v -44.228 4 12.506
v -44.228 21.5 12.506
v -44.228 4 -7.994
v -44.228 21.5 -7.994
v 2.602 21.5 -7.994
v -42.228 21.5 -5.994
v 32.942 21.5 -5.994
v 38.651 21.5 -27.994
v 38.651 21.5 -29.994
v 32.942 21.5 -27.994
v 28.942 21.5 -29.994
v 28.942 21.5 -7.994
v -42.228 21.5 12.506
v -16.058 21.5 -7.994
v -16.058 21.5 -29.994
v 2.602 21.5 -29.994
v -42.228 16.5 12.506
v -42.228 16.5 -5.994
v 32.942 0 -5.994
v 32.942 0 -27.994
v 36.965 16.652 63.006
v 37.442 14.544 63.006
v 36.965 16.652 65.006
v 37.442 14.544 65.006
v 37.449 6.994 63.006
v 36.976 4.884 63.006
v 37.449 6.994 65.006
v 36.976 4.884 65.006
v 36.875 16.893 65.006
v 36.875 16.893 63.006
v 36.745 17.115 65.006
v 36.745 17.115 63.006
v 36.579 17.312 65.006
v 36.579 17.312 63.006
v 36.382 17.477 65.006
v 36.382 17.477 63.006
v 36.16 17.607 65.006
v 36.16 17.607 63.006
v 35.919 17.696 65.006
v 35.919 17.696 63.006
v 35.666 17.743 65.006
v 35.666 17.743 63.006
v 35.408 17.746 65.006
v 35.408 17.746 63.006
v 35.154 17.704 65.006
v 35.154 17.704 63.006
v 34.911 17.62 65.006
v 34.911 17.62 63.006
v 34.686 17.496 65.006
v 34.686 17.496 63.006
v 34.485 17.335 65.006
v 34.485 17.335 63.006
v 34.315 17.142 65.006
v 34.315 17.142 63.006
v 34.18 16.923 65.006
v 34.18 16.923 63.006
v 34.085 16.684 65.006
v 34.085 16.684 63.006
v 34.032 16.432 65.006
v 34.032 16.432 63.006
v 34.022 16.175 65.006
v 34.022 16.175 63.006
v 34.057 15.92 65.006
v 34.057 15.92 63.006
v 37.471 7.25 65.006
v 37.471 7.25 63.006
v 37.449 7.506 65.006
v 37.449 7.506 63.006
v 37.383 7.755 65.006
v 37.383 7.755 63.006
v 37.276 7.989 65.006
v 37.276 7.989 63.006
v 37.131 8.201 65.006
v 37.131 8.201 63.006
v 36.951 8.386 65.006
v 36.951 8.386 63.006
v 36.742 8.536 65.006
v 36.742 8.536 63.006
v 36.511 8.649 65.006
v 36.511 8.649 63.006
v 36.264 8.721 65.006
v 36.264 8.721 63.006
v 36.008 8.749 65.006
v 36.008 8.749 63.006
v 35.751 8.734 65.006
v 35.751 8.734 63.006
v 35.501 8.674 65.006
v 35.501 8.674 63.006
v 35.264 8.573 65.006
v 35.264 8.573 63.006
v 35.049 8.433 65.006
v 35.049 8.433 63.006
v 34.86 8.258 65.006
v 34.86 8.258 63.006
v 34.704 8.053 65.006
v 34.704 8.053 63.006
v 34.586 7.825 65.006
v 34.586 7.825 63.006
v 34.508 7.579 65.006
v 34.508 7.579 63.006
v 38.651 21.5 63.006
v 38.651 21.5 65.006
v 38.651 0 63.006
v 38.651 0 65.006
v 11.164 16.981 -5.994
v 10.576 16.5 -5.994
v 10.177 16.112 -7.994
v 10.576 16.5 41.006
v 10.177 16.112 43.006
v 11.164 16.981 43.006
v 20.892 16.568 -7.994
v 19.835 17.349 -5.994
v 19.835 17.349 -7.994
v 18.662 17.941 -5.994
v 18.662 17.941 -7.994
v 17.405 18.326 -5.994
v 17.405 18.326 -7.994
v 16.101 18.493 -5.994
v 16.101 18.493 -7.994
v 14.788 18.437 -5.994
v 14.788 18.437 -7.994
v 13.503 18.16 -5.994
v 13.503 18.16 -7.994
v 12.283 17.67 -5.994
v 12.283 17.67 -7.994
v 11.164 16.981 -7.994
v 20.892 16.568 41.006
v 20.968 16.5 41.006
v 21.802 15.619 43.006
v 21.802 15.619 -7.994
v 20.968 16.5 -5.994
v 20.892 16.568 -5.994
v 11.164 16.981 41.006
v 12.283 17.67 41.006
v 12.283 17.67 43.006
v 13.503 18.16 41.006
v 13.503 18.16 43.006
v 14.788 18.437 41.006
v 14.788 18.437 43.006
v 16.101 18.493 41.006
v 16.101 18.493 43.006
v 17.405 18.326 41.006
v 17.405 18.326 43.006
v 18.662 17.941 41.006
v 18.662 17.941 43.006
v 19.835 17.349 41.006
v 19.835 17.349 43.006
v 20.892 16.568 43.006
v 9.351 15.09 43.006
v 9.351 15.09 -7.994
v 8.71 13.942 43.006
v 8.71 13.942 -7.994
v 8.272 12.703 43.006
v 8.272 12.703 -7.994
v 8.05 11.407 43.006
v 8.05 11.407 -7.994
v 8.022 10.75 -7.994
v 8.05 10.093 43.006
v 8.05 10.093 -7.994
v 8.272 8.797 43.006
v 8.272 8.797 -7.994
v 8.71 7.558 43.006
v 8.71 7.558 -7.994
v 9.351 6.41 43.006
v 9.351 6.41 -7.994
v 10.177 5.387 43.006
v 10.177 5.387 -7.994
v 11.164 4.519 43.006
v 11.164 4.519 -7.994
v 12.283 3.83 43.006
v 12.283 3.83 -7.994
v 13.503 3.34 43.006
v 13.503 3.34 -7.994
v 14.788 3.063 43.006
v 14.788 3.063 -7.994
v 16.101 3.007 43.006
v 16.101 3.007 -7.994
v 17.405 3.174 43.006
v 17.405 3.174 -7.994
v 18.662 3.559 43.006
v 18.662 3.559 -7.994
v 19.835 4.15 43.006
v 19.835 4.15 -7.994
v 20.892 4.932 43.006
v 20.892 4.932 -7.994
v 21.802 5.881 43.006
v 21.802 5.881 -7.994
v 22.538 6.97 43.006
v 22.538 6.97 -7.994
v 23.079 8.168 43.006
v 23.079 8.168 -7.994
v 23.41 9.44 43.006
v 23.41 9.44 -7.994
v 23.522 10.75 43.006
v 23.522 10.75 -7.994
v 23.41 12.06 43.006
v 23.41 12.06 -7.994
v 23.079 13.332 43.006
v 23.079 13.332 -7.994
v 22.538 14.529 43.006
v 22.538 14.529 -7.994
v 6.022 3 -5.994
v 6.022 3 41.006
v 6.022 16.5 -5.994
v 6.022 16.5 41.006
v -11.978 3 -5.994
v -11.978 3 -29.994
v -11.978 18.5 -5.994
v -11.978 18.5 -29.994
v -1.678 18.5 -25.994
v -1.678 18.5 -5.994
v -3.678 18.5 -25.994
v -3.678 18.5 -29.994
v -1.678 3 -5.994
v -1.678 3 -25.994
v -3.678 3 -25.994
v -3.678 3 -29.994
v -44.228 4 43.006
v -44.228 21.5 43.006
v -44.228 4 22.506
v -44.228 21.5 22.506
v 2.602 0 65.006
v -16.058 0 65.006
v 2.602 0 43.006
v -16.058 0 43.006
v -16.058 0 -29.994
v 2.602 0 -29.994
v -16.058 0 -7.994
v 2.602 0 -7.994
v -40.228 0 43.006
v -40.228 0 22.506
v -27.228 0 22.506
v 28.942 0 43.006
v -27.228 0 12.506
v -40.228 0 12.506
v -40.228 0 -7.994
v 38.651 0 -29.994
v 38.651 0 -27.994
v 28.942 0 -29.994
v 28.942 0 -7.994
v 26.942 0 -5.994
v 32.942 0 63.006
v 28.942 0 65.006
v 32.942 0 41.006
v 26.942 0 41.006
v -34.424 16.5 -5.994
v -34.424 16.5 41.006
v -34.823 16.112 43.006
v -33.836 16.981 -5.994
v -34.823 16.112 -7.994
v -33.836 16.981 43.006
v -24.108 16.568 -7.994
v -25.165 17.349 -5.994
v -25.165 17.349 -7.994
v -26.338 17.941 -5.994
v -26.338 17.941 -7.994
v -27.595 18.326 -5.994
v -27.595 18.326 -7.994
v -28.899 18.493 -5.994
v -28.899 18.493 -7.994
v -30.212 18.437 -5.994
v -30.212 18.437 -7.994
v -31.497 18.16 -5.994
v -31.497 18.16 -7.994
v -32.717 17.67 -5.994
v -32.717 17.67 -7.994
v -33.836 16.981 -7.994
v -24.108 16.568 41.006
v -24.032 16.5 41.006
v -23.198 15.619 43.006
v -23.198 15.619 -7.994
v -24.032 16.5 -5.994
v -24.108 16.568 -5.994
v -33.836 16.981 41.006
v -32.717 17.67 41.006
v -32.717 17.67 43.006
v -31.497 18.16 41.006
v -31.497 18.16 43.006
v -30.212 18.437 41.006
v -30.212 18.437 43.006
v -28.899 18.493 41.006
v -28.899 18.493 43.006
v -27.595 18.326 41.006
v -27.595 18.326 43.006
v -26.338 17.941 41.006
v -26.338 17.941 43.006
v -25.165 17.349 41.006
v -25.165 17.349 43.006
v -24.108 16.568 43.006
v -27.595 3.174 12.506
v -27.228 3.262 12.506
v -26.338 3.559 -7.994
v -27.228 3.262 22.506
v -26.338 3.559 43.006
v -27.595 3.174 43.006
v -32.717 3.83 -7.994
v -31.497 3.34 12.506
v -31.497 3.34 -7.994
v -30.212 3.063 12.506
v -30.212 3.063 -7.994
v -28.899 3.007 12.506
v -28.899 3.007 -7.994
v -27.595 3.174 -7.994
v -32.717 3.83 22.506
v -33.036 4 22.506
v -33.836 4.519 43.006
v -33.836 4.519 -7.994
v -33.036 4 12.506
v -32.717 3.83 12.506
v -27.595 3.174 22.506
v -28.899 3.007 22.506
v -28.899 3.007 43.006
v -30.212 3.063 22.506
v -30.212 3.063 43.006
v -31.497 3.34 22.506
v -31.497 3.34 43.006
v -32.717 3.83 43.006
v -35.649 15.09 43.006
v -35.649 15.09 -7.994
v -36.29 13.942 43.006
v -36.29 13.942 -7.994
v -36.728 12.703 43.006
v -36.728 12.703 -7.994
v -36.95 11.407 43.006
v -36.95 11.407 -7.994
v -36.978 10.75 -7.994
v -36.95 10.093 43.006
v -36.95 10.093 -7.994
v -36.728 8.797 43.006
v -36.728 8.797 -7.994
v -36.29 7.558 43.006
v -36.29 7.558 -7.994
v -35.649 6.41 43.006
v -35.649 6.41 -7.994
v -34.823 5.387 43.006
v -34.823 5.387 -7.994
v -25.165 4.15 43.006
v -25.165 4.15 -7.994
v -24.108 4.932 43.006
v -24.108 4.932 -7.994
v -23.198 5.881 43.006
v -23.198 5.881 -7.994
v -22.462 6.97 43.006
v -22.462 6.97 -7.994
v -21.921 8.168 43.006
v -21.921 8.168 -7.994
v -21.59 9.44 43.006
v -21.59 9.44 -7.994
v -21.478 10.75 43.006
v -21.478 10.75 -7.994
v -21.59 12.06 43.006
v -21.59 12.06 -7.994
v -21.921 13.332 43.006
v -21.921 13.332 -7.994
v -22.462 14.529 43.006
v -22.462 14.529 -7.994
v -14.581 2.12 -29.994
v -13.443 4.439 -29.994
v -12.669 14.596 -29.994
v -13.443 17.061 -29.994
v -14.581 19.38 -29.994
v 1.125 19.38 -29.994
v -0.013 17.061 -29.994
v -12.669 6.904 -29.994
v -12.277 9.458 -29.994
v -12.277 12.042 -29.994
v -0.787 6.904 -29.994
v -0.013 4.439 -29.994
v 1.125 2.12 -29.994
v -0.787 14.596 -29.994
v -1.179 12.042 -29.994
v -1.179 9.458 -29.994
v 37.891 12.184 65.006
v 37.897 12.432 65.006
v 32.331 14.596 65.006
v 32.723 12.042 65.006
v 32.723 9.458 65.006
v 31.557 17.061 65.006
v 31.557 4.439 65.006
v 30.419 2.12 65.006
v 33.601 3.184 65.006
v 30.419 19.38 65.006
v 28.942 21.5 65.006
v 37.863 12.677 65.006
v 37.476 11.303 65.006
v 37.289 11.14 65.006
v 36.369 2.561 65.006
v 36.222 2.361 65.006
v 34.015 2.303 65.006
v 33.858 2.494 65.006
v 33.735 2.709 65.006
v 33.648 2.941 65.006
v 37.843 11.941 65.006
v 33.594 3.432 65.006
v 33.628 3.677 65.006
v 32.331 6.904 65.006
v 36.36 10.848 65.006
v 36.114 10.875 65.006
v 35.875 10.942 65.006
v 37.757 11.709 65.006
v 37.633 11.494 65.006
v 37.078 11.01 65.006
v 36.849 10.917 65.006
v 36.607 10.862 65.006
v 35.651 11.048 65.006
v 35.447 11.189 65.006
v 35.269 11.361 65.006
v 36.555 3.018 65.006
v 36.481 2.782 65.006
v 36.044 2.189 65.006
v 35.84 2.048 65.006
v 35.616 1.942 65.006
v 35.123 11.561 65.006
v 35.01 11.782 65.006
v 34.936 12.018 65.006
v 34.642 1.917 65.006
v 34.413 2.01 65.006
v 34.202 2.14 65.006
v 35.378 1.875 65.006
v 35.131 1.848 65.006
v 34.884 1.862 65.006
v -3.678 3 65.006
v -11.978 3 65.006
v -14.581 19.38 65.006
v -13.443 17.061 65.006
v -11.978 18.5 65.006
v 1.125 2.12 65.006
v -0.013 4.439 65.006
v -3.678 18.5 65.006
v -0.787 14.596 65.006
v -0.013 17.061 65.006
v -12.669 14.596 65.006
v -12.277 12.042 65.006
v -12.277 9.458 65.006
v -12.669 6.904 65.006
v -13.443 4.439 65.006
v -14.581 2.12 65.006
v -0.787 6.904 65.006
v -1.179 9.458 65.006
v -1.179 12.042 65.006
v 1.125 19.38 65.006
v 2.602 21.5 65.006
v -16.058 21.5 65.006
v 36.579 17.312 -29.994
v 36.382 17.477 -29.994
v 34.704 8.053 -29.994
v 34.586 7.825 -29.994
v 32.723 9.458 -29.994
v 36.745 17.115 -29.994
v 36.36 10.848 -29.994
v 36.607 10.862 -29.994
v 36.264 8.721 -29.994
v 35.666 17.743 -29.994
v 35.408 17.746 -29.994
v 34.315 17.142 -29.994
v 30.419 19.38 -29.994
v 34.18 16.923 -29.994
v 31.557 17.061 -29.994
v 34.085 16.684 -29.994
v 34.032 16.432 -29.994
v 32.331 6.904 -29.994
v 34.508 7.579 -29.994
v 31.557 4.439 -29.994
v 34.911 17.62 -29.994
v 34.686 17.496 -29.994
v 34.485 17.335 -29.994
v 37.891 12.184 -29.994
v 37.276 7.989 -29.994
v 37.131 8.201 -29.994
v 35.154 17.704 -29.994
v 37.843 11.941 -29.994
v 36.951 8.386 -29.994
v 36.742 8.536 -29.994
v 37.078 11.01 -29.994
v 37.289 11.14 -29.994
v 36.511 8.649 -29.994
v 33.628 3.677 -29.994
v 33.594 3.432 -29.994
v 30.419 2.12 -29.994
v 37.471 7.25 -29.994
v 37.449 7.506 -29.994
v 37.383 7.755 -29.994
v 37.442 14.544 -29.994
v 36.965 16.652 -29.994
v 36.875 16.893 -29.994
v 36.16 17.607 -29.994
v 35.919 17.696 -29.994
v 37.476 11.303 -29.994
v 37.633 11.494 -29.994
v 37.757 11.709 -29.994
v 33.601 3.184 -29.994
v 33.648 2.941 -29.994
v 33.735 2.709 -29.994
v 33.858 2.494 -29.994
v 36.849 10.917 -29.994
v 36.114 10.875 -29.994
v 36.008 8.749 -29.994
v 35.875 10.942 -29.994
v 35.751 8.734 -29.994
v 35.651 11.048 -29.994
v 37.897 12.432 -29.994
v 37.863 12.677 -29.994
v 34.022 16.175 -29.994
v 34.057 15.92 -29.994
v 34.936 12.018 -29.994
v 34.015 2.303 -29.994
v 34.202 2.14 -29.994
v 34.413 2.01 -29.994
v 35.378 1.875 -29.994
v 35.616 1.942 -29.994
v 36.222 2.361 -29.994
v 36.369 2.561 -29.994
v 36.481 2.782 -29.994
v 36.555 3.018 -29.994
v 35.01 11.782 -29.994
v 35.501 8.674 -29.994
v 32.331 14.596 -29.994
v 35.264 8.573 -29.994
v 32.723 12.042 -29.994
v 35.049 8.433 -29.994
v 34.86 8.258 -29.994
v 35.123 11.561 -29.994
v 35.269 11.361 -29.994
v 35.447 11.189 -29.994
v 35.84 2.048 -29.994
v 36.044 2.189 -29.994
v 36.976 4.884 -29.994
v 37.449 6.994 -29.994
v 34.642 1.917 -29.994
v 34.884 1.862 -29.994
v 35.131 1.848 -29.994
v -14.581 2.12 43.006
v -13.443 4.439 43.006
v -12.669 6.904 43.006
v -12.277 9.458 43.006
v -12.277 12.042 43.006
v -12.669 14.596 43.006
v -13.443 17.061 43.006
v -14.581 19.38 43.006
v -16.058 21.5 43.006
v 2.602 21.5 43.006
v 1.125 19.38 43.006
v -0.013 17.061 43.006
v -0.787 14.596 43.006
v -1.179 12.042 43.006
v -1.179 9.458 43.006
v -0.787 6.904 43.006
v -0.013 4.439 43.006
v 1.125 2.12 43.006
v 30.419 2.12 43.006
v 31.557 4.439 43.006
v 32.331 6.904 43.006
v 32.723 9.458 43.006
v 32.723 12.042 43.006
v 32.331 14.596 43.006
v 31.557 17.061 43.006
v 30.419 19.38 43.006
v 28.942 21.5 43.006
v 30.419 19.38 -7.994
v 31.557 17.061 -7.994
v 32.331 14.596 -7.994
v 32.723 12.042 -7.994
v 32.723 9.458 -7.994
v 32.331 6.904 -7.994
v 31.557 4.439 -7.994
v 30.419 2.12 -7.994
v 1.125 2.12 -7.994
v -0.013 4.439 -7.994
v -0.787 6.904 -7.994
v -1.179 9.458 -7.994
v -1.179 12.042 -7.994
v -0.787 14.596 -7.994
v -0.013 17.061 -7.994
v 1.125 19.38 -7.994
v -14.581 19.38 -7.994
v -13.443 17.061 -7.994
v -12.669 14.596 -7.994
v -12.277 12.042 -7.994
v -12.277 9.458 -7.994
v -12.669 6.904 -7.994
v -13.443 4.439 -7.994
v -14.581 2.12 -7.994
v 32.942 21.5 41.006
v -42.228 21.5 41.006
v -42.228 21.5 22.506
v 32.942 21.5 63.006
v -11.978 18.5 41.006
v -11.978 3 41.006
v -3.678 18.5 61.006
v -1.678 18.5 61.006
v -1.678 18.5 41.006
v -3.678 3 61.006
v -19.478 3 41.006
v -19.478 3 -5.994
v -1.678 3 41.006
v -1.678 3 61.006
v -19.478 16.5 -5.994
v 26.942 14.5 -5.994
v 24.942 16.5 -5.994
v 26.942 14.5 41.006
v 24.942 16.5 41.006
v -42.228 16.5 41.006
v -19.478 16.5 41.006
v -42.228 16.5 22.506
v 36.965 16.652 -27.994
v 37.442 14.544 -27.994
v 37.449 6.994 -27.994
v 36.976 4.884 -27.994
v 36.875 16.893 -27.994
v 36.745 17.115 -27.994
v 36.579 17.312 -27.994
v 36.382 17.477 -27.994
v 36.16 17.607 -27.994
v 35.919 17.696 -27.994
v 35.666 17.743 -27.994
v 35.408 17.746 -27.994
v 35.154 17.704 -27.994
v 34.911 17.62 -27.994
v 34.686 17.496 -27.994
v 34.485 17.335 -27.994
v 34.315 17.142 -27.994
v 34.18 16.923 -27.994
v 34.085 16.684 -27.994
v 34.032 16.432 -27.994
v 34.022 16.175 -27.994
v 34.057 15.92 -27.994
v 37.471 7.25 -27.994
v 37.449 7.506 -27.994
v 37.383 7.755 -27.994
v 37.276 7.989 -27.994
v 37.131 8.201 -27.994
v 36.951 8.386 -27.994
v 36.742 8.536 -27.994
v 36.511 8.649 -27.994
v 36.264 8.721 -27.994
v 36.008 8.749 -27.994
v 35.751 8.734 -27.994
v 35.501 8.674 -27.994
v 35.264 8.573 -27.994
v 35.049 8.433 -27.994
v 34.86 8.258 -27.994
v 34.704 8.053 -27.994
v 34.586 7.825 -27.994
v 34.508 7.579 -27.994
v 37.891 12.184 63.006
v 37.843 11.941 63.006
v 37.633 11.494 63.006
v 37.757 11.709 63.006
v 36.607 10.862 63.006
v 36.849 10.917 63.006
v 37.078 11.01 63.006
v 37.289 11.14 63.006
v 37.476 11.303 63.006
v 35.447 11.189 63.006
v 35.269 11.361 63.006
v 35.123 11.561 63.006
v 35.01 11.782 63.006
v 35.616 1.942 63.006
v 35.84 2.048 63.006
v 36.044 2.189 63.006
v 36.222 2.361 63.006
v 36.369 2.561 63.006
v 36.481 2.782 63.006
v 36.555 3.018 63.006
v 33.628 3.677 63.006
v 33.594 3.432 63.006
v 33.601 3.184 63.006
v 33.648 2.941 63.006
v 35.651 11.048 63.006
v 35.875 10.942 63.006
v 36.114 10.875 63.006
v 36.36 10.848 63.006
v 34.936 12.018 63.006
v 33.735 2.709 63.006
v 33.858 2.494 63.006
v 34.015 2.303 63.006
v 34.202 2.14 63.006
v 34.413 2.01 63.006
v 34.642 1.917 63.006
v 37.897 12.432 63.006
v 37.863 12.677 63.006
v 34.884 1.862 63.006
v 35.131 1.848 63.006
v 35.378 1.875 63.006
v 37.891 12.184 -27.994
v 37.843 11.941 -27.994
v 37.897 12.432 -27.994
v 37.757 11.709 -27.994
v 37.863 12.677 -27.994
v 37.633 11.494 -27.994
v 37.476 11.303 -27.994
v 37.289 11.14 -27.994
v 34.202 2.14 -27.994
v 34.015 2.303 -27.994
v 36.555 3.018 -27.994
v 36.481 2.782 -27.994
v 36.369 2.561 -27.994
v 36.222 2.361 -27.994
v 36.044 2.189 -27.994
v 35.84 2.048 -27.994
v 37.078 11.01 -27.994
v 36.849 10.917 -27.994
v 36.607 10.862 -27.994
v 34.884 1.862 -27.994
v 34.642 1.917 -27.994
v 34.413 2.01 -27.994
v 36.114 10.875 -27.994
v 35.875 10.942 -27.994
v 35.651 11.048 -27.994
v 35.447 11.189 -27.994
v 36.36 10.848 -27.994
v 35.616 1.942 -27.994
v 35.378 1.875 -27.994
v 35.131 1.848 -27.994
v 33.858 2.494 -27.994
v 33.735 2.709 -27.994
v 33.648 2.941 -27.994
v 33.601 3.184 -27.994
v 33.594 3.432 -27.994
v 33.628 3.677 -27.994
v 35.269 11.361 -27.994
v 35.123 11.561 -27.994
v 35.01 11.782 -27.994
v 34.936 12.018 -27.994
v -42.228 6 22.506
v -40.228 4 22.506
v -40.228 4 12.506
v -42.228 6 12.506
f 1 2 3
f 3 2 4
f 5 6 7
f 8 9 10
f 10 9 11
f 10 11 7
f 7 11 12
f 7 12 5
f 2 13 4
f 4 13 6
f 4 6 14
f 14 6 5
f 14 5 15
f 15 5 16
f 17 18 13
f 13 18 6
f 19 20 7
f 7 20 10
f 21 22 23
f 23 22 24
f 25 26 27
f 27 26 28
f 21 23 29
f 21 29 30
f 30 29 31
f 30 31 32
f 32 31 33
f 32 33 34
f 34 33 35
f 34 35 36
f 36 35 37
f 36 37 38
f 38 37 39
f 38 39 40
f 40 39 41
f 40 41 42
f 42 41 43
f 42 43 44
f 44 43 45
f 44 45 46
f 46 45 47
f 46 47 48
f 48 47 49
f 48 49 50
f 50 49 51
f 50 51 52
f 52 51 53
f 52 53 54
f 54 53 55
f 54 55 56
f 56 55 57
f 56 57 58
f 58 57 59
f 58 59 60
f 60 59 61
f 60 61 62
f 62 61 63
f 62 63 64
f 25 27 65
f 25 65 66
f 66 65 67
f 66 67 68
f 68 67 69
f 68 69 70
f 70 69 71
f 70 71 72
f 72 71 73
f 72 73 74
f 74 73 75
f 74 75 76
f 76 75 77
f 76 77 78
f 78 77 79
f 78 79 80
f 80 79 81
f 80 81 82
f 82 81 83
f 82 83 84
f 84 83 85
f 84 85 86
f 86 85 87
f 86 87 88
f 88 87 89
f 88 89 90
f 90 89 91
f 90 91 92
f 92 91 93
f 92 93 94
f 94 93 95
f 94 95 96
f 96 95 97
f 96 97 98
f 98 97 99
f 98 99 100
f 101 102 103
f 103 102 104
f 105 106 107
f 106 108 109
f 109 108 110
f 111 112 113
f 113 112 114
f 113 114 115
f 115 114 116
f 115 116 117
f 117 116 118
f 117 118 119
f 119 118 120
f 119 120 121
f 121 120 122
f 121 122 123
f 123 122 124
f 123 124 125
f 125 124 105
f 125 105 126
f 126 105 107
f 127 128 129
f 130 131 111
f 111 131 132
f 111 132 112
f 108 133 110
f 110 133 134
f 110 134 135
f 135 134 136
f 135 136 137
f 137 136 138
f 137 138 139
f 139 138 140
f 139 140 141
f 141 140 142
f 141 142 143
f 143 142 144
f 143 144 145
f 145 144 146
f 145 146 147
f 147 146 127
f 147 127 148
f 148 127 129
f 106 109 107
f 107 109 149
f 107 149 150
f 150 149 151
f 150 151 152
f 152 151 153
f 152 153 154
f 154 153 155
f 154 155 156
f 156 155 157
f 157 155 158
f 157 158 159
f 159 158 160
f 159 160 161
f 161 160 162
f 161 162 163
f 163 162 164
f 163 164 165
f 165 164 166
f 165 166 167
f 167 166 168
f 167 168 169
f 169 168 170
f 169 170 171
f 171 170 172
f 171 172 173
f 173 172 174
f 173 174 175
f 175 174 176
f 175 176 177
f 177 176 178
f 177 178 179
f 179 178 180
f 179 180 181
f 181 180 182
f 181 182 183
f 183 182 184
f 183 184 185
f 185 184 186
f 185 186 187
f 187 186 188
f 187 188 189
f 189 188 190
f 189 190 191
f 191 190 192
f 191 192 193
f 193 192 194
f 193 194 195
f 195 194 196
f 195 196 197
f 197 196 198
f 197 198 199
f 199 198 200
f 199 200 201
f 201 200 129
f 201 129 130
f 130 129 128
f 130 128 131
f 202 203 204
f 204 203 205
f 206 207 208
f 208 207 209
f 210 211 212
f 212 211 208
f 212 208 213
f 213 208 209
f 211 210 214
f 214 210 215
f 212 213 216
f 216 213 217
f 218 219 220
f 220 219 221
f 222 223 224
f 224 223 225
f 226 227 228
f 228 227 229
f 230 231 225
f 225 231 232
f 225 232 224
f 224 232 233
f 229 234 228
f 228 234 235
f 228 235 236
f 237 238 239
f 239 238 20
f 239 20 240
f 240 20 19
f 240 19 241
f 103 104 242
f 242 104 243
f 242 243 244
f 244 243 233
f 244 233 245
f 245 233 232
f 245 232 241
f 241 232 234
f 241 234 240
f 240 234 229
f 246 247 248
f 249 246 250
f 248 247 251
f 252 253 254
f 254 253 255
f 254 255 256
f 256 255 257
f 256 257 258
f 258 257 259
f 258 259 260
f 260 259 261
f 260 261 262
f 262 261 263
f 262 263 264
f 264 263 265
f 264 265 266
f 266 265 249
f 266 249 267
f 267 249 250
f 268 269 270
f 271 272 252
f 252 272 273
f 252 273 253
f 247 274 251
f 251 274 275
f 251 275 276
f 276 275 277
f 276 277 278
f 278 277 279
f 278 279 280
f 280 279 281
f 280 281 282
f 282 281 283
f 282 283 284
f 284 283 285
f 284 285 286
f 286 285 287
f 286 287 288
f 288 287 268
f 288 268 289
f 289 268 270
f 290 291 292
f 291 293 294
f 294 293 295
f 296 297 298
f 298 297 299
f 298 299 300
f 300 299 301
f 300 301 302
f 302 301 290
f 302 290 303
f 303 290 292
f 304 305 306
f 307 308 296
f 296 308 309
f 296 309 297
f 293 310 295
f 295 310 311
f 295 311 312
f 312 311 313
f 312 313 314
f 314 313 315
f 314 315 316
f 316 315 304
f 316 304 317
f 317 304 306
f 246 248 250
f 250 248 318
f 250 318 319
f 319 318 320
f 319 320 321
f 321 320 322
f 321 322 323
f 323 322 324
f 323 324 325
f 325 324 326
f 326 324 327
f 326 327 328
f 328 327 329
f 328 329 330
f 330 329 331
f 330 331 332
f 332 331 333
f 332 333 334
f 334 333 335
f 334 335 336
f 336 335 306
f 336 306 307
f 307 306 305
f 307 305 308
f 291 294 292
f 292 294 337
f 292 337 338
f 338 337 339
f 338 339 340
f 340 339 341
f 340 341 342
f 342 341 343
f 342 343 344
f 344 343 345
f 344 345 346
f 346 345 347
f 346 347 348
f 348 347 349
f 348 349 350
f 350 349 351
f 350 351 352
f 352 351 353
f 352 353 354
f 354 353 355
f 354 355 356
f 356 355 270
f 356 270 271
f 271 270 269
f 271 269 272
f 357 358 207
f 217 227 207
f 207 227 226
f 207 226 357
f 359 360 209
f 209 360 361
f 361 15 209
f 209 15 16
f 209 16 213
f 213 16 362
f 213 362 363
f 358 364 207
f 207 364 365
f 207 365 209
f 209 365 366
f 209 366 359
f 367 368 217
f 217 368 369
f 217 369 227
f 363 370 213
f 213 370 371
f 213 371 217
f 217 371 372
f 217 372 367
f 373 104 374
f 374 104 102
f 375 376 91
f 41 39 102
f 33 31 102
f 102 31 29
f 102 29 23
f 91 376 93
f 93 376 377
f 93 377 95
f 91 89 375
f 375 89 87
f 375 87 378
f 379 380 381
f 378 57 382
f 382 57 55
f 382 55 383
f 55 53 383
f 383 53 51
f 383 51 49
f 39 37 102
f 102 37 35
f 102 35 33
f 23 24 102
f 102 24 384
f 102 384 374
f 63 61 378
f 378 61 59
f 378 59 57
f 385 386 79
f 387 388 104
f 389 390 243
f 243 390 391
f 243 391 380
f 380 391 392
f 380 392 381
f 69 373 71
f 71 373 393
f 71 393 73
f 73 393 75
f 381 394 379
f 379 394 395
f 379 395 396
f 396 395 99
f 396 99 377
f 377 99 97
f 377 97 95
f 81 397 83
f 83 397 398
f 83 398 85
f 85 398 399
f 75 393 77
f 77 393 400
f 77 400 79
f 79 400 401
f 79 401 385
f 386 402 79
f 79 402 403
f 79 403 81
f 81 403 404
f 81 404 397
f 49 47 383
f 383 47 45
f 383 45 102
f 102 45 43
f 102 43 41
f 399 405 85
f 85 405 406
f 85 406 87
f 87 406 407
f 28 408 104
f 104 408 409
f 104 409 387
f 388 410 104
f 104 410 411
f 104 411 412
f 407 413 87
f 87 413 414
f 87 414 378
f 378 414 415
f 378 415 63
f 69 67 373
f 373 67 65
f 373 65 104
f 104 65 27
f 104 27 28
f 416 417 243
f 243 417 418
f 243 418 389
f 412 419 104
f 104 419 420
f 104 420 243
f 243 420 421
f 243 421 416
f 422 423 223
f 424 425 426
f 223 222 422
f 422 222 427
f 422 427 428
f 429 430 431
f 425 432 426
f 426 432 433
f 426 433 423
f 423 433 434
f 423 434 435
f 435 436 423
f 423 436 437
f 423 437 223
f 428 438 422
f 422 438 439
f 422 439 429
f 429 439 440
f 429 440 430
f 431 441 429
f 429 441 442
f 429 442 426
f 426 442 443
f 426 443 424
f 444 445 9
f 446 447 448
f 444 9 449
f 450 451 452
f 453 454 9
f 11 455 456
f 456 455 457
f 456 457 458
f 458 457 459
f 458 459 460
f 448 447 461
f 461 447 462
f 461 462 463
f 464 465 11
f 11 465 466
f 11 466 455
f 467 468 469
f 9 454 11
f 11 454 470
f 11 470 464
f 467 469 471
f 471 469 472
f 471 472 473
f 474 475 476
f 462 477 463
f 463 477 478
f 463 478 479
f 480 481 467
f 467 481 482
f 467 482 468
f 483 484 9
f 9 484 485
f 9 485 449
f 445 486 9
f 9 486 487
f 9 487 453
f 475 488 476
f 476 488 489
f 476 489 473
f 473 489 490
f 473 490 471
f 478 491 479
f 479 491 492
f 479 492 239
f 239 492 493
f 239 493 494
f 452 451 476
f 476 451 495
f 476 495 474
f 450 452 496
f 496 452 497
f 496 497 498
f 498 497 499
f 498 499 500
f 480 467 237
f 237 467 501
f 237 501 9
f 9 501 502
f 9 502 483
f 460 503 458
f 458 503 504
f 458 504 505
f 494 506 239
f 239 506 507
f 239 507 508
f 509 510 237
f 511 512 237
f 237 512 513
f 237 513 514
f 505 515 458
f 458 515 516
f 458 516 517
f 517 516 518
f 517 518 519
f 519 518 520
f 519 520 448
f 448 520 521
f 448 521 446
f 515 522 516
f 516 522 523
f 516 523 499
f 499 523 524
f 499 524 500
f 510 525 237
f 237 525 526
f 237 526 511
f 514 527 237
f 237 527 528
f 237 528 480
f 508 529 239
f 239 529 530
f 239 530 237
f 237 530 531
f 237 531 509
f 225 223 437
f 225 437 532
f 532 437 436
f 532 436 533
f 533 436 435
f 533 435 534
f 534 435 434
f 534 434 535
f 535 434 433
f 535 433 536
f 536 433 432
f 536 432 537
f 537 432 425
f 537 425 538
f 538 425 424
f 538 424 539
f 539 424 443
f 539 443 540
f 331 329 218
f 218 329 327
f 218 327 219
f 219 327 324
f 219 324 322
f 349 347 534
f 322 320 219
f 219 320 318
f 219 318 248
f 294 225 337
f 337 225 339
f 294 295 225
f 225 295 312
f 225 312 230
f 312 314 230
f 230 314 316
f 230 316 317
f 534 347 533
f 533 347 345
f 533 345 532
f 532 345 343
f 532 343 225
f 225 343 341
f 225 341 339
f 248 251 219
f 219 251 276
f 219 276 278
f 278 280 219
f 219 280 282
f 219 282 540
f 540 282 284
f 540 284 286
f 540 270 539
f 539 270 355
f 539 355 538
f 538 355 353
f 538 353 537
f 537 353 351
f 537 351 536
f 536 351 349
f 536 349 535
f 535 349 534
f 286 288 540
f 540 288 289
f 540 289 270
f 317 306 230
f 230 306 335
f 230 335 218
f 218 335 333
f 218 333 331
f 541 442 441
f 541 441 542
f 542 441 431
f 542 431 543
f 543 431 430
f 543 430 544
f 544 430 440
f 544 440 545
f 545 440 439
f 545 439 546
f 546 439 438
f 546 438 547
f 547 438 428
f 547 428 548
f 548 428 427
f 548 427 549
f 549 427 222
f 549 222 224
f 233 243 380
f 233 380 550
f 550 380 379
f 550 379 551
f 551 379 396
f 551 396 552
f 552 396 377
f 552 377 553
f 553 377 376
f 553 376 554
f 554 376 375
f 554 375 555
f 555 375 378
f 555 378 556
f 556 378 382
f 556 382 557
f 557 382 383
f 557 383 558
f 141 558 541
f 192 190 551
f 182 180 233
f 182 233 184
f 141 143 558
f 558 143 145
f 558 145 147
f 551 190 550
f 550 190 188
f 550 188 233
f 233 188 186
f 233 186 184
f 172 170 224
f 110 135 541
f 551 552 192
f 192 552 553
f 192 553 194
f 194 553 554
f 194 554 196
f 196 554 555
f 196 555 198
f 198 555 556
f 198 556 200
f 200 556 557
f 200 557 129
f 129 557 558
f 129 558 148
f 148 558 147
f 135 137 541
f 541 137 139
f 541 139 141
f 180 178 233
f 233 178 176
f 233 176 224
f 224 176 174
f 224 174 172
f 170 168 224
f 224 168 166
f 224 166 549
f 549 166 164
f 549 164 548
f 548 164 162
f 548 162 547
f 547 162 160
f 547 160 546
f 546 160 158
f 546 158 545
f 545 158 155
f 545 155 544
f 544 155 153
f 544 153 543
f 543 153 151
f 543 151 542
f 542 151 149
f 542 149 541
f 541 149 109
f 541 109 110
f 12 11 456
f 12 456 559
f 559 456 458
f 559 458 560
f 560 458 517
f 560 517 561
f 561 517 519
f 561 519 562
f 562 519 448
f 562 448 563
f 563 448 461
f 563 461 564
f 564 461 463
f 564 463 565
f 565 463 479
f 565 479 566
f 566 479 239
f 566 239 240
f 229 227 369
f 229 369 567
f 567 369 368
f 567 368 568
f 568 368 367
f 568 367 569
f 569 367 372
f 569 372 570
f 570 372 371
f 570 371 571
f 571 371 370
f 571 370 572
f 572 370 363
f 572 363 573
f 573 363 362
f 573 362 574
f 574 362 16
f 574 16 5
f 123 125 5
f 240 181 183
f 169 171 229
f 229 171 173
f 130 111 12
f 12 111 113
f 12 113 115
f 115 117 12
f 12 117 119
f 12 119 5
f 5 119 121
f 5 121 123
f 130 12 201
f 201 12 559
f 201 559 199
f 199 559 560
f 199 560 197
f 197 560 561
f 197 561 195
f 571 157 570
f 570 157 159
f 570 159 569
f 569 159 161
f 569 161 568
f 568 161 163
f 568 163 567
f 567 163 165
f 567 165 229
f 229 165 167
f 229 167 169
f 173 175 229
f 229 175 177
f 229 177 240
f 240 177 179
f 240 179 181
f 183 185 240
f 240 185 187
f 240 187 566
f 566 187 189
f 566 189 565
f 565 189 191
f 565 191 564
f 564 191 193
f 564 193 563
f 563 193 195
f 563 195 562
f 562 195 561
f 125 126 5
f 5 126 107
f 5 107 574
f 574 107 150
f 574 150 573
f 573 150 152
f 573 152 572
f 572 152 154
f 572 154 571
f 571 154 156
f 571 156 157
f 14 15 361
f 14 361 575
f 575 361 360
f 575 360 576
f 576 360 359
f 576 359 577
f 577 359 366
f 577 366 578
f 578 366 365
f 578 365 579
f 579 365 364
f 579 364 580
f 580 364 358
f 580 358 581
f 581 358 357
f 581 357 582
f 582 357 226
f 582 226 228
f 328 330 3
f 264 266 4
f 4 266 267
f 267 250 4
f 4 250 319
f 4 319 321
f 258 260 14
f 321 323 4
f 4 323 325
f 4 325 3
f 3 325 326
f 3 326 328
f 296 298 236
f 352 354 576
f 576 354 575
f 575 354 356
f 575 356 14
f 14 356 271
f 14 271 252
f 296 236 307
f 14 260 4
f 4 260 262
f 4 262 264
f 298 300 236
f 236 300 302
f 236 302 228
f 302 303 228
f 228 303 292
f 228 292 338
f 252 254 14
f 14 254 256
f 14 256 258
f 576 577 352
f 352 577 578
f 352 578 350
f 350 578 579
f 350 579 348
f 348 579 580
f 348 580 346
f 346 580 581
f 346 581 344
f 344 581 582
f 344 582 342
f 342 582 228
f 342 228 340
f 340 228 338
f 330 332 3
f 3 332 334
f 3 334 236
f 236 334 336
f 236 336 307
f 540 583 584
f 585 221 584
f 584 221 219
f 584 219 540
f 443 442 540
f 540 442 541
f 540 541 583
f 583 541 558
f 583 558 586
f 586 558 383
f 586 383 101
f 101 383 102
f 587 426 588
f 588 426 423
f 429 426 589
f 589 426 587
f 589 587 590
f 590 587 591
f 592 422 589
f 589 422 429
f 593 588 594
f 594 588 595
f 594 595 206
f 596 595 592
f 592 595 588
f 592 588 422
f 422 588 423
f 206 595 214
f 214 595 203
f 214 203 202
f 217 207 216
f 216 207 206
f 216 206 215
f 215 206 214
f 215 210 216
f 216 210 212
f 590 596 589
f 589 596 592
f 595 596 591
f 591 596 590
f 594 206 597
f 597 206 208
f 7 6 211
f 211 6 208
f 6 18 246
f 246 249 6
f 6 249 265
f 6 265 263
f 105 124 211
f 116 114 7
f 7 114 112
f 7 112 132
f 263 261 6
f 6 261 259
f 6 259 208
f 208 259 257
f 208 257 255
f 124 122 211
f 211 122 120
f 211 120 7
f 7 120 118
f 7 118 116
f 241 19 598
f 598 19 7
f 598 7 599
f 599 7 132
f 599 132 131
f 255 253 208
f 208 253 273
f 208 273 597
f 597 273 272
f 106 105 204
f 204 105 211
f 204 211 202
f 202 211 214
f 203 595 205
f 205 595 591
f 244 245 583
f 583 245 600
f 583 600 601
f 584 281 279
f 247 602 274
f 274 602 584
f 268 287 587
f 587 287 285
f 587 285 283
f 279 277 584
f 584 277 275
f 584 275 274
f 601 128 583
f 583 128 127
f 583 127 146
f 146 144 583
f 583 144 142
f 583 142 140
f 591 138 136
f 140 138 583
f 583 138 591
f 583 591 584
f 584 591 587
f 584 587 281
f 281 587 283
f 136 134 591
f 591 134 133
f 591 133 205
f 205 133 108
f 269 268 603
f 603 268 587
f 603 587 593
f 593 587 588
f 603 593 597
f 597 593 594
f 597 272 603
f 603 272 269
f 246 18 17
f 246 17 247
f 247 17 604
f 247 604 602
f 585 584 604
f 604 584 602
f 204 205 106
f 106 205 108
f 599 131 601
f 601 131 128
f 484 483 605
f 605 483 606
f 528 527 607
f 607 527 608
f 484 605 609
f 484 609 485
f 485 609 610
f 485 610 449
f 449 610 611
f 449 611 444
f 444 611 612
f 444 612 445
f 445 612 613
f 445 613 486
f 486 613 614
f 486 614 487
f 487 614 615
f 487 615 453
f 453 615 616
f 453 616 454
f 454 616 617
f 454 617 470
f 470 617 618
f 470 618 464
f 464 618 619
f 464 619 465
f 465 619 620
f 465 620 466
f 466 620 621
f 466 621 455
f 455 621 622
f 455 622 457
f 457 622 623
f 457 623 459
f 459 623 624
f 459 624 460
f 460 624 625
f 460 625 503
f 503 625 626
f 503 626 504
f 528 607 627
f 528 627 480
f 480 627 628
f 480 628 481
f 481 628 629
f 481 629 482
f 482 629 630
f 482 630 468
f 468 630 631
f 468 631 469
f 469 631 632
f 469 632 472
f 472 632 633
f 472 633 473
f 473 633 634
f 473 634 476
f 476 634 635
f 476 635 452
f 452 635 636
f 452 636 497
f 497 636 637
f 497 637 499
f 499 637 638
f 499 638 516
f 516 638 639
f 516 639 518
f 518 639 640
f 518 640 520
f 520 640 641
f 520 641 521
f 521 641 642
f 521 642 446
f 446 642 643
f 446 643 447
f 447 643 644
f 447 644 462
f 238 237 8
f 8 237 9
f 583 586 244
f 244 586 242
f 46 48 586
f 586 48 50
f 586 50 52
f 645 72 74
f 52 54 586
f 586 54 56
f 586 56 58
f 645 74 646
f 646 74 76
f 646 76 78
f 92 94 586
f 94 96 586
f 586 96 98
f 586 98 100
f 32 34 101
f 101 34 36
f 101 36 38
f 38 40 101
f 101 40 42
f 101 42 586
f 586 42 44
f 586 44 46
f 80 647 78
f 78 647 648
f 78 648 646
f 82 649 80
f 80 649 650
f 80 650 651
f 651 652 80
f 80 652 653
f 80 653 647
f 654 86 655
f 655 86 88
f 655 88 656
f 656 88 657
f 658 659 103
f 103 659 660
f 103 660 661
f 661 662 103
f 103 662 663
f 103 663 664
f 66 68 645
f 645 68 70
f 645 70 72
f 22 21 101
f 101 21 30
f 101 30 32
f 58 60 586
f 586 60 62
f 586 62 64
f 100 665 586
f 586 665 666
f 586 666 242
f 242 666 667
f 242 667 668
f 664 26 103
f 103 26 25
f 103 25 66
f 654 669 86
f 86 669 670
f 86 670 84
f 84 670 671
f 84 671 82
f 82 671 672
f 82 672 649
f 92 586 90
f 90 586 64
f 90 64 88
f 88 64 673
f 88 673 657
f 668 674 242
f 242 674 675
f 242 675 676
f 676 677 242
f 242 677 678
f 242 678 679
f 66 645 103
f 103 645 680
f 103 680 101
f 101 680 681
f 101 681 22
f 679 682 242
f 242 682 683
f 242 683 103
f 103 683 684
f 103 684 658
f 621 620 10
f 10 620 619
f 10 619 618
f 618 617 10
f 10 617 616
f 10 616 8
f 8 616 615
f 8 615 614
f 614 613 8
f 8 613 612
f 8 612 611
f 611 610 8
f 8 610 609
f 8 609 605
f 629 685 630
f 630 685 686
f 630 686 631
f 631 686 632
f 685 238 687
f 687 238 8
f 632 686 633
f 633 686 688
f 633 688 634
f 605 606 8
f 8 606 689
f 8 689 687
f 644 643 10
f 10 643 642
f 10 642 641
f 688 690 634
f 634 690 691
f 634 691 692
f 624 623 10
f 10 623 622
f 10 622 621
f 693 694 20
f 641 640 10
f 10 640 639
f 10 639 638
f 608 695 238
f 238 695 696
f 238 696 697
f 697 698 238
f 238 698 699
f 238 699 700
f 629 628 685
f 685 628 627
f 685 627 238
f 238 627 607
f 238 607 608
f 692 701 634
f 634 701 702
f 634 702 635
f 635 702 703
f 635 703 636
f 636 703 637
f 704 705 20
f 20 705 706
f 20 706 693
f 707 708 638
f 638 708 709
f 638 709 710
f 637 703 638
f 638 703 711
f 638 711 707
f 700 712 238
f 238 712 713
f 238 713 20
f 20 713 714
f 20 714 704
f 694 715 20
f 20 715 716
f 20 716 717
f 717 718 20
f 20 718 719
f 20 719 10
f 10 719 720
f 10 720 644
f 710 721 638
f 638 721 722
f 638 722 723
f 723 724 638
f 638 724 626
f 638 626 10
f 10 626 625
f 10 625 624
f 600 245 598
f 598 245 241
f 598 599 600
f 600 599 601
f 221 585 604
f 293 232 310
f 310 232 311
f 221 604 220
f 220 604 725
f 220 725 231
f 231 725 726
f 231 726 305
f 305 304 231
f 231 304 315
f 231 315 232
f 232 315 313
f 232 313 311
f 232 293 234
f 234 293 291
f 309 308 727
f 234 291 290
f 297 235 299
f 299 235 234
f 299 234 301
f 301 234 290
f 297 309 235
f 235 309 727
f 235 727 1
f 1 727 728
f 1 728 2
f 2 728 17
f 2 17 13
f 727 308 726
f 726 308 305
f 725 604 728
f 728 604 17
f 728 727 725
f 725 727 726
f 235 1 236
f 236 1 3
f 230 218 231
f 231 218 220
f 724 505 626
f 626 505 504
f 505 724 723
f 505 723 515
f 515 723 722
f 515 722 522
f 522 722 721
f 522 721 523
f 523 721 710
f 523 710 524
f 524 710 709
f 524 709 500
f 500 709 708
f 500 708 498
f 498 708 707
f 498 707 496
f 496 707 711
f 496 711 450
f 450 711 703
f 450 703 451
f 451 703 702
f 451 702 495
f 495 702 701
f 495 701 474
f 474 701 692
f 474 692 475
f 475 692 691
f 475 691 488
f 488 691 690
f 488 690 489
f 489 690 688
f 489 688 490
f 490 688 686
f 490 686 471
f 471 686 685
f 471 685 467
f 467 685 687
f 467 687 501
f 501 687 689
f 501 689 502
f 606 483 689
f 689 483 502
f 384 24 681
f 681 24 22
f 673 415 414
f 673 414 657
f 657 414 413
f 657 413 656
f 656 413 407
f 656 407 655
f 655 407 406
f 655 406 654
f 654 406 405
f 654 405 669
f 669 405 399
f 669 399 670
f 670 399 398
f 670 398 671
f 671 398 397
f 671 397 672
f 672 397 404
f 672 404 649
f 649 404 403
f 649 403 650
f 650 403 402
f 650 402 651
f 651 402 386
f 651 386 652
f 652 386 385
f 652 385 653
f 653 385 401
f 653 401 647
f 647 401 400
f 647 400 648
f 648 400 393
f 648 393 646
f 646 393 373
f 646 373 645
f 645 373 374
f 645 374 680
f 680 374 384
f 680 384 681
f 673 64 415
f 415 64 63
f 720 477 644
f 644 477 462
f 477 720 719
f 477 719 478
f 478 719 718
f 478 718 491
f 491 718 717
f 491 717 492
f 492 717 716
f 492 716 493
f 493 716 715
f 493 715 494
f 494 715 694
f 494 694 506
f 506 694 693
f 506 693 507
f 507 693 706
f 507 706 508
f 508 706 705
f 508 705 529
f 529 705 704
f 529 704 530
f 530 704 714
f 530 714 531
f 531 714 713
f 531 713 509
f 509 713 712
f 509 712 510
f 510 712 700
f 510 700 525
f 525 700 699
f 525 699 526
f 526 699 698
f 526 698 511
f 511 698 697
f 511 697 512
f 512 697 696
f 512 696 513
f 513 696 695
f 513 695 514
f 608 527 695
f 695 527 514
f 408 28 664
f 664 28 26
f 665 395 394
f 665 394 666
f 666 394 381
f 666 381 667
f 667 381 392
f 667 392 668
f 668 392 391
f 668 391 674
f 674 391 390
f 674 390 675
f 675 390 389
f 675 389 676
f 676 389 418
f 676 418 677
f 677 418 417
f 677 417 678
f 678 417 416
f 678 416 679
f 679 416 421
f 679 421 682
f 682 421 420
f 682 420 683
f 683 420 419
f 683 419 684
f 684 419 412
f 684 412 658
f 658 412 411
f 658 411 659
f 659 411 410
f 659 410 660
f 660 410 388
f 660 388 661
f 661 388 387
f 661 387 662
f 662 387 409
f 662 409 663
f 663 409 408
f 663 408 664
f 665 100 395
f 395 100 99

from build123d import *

# Parameters (mm, degrees)
SKETCH1_W           = 95
SKETCH1_H           = 95
BOSS_EXTRUDE1_DEPTH = 25
SKETCH2_R           = 7.75
CUT_EXTRUDE2_DEPTH  = 100
SKETCH3_R           = 17
CUT_EXTRUDE3_DEPTH  = 22
CUT_EXTRUDE4_START  = -22
SKETCH4_R           = 17
CUT_EXTRUDE4_DEPTH  = 22
SKETCH5_W           = 6.246993927
SKETCH5_H           = 25
CUT_EXTRUDE5_DEPTH  = 22
SKETCH6_W           = 7.178723585
SKETCH6_H           = 25
CUT_EXTRUDE6_DEPTH  = 22
SKETCH8_W           = 99.503929421
SKETCH8_H           = 3.5
CUT_EXTRUDE7_DEPTH  = 100
SKETCH9_W           = 8.3
SKETCH9_H           = 15.5
CUT_EXTRUDE11_DEPTH = 100
SKETCH13_W          = 87
SKETCH13_H          = 15.5
CUT_EXTRUDE12_DEPTH = 2
SKETCH14_W          = 25.5
SKETCH14_H          = 47
CUT_EXTRUDE14_DEPTH = 18.5
SKETCH16_W          = 24.75
SKETCH16_H          = 47
CUT_EXTRUDE15_DEPTH = 5
SKETCH17_W          = 20.919567191
SKETCH17_H          = 47
CUT_EXTRUDE16_DEPTH = 5
CUT_EXTRUDE17_DEPTH = 100
FILLET6_R           = 1.5
FILLET7_R           = 1.5
FILLET8_R           = 1.5
FILLET9_R           = 1.5
SKETCH19_W          = 12.12120401
SKETCH19_H          = 21.5
CUT_EXTRUDE20_DEPTH = 100
SKETCH20_W          = 5.709228799
SKETCH20_H          = 91
CUT_EXTRUDE23_DEPTH = 100
SKETCH21_W          = 6
SKETCH21_H          = 47
CUT_EXTRUDE26_DEPTH = 40
CHAMFER1_SIZE       = 2
SKETCH22_W          = 15
SKETCH22_H          = 10
CUT_EXTRUDE27_DEPTH = 4
SKETCH23_W          = 2
SKETCH23_H          = 10
CUT_EXTRUDE28_DEPTH = 54
CHAMFER2_SIZE       = 2
CHAMFER3_SIZE       = 4
CHAMFER4_SIZE       = 4
CUT_EXTRUDE29_DEPTH = 100


with BuildPart() as part:
    # Sketch1 → Boss-Extrude1 (new body)
    with BuildSketch(Plane(origin=(0, 0, 0), x_dir=(1, 0, 0), z_dir=(0, 1, 0))):
        with Locations((3.271948822, -17.506298191)):
            Rectangle(SKETCH1_W, SKETCH1_H)
    extrude(amount=BOSS_EXTRUDE1_DEPTH)

    # Sketch2 → Cut-Extrude2 (cut)
    with BuildSketch(Plane.XY.offset(65.006298191)):
        with Locations((-29.228051178, 10.75)):
            Circle(SKETCH2_R)
        with Locations((15.771948822, 10.75)):
            Circle(SKETCH2_R)
    extrude(amount=-CUT_EXTRUDE2_DEPTH, mode=Mode.SUBTRACT)

    # Sketch3 → Cut-Extrude3 (cut)
    with BuildSketch(Plane.XY.offset(65.006298191)):
        with Locations((-29.228051178, 10.75)):
            Circle(SKETCH3_R)
        with Locations((15.771948822, 10.75)):
            Circle(SKETCH3_R)
    extrude(amount=-CUT_EXTRUDE3_DEPTH, mode=Mode.SUBTRACT)

    # Sketch4 → Cut-Extrude4 (cut)
    with BuildSketch(Plane(origin=(0, 0, -29.993701809), x_dir=(-1, 0, 0), z_dir=(0, 0, -1)).offset(CUT_EXTRUDE4_START)):
        with Locations((-15.771948822, 10.75)):
            Circle(SKETCH4_R)
        with Locations((29.228051178, 10.75)):
            Circle(SKETCH4_R)
    extrude(amount=CUT_EXTRUDE4_DEPTH, mode=Mode.SUBTRACT)

    # Sketch5 → Cut-Extrude5 (cut)
    with BuildSketch(Plane.XY.offset(65.006298191)):
        with Locations((-41.104554214, 12.5)):
            Rectangle(SKETCH5_W, SKETCH5_H)
    extrude(amount=-CUT_EXTRUDE5_DEPTH, mode=Mode.SUBTRACT)

    # Sketch6 → Cut-Extrude6 (cut)
    with BuildSketch(Plane(origin=(0, 0, -29.993701809), x_dir=(-1, 0, 0), z_dir=(0, 0, -1))):
        with Locations((40.638689386, 12.5)):
            Rectangle(SKETCH6_W, SKETCH6_H)
    extrude(amount=-CUT_EXTRUDE6_DEPTH, mode=Mode.SUBTRACT)

    # Sketch8 → Cut-Extrude7 (cut)
    with BuildSketch(Plane(origin=(0, 0, -29.993701809), x_dir=(-1, 0, 0), z_dir=(0, 0, -1))):
        with Locations((-1.019984112, 23.25)):
            Rectangle(SKETCH8_W, SKETCH8_H)
    extrude(amount=-CUT_EXTRUDE7_DEPTH, mode=Mode.SUBTRACT)

    # Sketch9 → Cut-Extrude11 (cut)
    with BuildSketch(Plane.XY.offset(65.006298191)):
        with Locations((-7.828051178, 10.75)):
            Rectangle(SKETCH9_W, SKETCH9_H)
    extrude(amount=-CUT_EXTRUDE11_DEPTH, mode=Mode.SUBTRACT)

    # Sketch13 → Cut-Extrude12 (cut)
    with BuildSketch(Plane.ZY.offset(3.678051178)):
        with Locations((17.506298191, 10.75)):
            Rectangle(SKETCH13_W, SKETCH13_H)
    extrude(amount=-CUT_EXTRUDE12_DEPTH, mode=Mode.SUBTRACT)

    # Sketch14 → Cut-Extrude14 (cut)
    with BuildSketch(Plane(origin=(0, 21.5, 0), x_dir=(1, 0, 0), z_dir=(0, 1, 0))):
        with Locations((-6.728051178, -17.506298191)):
            Rectangle(SKETCH14_W, SKETCH14_H)
    extrude(amount=-CUT_EXTRUDE14_DEPTH, mode=Mode.SUBTRACT)

    # Sketch16 → Cut-Extrude15 (cut)
    with BuildSketch(Plane(origin=(0, 21.5, 0), x_dir=(1, 0, 0), z_dir=(0, 1, 0))):
        with Locations((-29.853051178, -17.506298191)):
            Rectangle(SKETCH16_W, SKETCH16_H)
    extrude(amount=-CUT_EXTRUDE15_DEPTH, mode=Mode.SUBTRACT)

    # Sketch17 → Cut-Extrude16 (cut)
    with BuildSketch(Plane(origin=(0, 21.5, 0), x_dir=(1, 0, 0), z_dir=(0, 1, 0))):
        with Locations((16.481732418, -17.506298191)):
            Rectangle(SKETCH17_W, SKETCH17_H)
    extrude(amount=-CUT_EXTRUDE16_DEPTH, mode=Mode.SUBTRACT)

    # Sketch18 → Cut-Extrude17 (cut)
    with BuildSketch(Plane.XY.offset(65.006298191)):
        with BuildLine():
            Line((34.66639245, 12.75), (37.680851122, 12.75))
            ThreePointArc((37.680851122, 12.75), (37.300376381, 15.28065192), (36.628602437, 17.75))
            Line((36.628602437, 17.75), (33.435470555, 17.75))
            ThreePointArc((33.435470555, 17.75), (34.221100776, 15.291893017), (34.66639245, 12.75))
        make_face()
        with BuildLine():
            Line((34.66639245, 8.75), (37.680851122, 8.75))
            ThreePointArc((37.680851122, 8.75), (37.300376381, 6.21934808), (36.628602437, 3.75))
            Line((36.628602437, 3.75), (33.435470555, 3.75))
            ThreePointArc((33.435470555, 3.75), (34.221100776, 6.208106983), (34.66639245, 8.75))
        make_face()
    extrude(amount=-CUT_EXTRUDE17_DEPTH, mode=Mode.SUBTRACT)

    # Fillet6
    fillet6_edges = [part.edges().sort_by_distance(p)[0] for p in [
        (33.435470555, 17.75, 17.506298191),
        (36.628602437, 17.75, 17.506298191),
    ]]
    fillet(fillet6_edges, radius=FILLET6_R - 0.0001)  # a hair under: the kernel refuses the full size

    # Fillet7
    fillet7_edges = [part.edges().sort_by_distance(p)[0] for p in [
        (37.680851122, 12.75, 17.506298191),
        (34.66639245, 12.75, 17.506298191),
    ]]
    fillet(fillet7_edges, radius=FILLET7_R - 0.0001)  # a hair under: the kernel refuses the full size

    # Fillet8
    fillet8_edges = [part.edges().sort_by_distance(p)[0] for p in [
        (33.435470555, 3.75, 17.506298191),
        (36.628602437, 3.75, 17.506298191),
    ]]
    fillet(fillet8_edges, radius=FILLET8_R - 0.0001)  # a hair under: the kernel refuses the full size

    # Fillet9
    fillet9_edges = [part.edges().sort_by_distance(p)[0] for p in [
        (37.680851122, 8.75, 17.506298191),
        (34.66639245, 8.75, 17.506298191),
    ]]
    fillet(fillet9_edges, radius=FILLET9_R - 0.0001)  # a hair under: the kernel refuses the full size

    # Sketch19 → Cut-Extrude20 (cut)
    with BuildSketch(Plane.XY.offset(65.006298191)):
        with Locations((44.711346817, 10.75)):
            Rectangle(SKETCH19_W, SKETCH19_H)
    extrude(amount=-CUT_EXTRUDE20_DEPTH, mode=Mode.SUBTRACT)

    # Sketch20 → Cut-Extrude23 (cut)
    with BuildSketch(Plane(origin=(0, 21.5, 0), x_dir=(1, 0, 0), z_dir=(0, 1, 0))):
        with Locations((35.796130413, -17.506298191)):
            Rectangle(SKETCH20_W, SKETCH20_H)
    extrude(amount=-CUT_EXTRUDE23_DEPTH, mode=Mode.SUBTRACT)

    # Sketch21 → Cut-Extrude26 (cut)
    with BuildSketch(Plane(origin=(0, 21.5, 0), x_dir=(1, 0, 0), z_dir=(0, 1, 0))):
        with Locations((29.941516013, -17.506298191)):
            Rectangle(SKETCH21_W, SKETCH21_H)
    extrude(amount=-CUT_EXTRUDE26_DEPTH, mode=Mode.SUBTRACT)

    # Chamfer1
    chamfer1_edges = [part.edges().sort_by_distance(p)[0] for p in [
        (26.941516013, 16.5, 17.506298191),
    ]]
    chamfer(chamfer1_edges, length=CHAMFER1_SIZE)

    # Sketch22 → Cut-Extrude27 (cut)
    with BuildSketch(Plane(origin=(0, 0, 0), x_dir=(-1, 0, 0), z_dir=(0, -1, 0))):
        with Locations((34.728051178, -17.506298191)):
            Rectangle(SKETCH22_W, SKETCH22_H)
    extrude(amount=-CUT_EXTRUDE27_DEPTH, mode=Mode.SUBTRACT)

    # Sketch23 → Cut-Extrude28 (cut)
    with BuildSketch(Plane(origin=(0, 0, 0), x_dir=(-1, 0, 0), z_dir=(0, -1, 0))):
        with Locations((43.228051178, -17.506298191)):
            Rectangle(SKETCH23_W, SKETCH23_H)
    extrude(amount=-CUT_EXTRUDE28_DEPTH, mode=Mode.SUBTRACT)

    # Chamfer2
    chamfer2_edges = [part.edges().sort_by_distance(p)[0] for p in [
        (-42.228051178, 4, 17.506298191),
    ]]
    chamfer(chamfer2_edges, length=CHAMFER2_SIZE)

    # Chamfer3
    chamfer3_edges = [part.edges().sort_by_distance(p)[0] for p in [
        (-44.228051178, 0, 2.256298191),
    ]]
    chamfer(chamfer3_edges, length=CHAMFER3_SIZE)

    # Chamfer4
    chamfer4_edges = [part.edges().sort_by_distance(p)[0] for p in [
        (-44.228051178, 0, 32.756298191),
    ]]
    chamfer(chamfer4_edges, length=CHAMFER4_SIZE)

    # Sketch24 → Cut-Extrude29 (cut)
    with BuildSketch(Plane.XY.offset(65.006298191)):
        with BuildLine():
            Line((36.983688261, 16.579680704), (37.862836804, 12.677489289))
            ThreePointArc((37.862836804, 12.677489289), (36.729195727, 10.884486805), (34.936193243, 12.018127881))
            Line((34.936193243, 12.018127881), (34.0570447, 15.920319296))
            ThreePointArc((34.0570447, 15.920319296), (35.190685776, 17.713321781), (36.983688261, 16.579680704))
        make_face()
        with BuildLine():
            Line((37.434280479, 6.920319296), (36.555131936, 3.018127881))
            ThreePointArc((36.555131936, 3.018127881), (34.762129451, 1.884486805), (33.628488375, 3.677489289))
            Line((33.628488375, 3.677489289), (34.507636918, 7.579680704))
            ThreePointArc((34.507636918, 7.579680704), (36.300639403, 8.713321781), (37.434280479, 6.920319296))
        make_face()
    extrude(amount=-CUT_EXTRUDE29_DEPTH, mode=Mode.SUBTRACT)


solid = part.part
